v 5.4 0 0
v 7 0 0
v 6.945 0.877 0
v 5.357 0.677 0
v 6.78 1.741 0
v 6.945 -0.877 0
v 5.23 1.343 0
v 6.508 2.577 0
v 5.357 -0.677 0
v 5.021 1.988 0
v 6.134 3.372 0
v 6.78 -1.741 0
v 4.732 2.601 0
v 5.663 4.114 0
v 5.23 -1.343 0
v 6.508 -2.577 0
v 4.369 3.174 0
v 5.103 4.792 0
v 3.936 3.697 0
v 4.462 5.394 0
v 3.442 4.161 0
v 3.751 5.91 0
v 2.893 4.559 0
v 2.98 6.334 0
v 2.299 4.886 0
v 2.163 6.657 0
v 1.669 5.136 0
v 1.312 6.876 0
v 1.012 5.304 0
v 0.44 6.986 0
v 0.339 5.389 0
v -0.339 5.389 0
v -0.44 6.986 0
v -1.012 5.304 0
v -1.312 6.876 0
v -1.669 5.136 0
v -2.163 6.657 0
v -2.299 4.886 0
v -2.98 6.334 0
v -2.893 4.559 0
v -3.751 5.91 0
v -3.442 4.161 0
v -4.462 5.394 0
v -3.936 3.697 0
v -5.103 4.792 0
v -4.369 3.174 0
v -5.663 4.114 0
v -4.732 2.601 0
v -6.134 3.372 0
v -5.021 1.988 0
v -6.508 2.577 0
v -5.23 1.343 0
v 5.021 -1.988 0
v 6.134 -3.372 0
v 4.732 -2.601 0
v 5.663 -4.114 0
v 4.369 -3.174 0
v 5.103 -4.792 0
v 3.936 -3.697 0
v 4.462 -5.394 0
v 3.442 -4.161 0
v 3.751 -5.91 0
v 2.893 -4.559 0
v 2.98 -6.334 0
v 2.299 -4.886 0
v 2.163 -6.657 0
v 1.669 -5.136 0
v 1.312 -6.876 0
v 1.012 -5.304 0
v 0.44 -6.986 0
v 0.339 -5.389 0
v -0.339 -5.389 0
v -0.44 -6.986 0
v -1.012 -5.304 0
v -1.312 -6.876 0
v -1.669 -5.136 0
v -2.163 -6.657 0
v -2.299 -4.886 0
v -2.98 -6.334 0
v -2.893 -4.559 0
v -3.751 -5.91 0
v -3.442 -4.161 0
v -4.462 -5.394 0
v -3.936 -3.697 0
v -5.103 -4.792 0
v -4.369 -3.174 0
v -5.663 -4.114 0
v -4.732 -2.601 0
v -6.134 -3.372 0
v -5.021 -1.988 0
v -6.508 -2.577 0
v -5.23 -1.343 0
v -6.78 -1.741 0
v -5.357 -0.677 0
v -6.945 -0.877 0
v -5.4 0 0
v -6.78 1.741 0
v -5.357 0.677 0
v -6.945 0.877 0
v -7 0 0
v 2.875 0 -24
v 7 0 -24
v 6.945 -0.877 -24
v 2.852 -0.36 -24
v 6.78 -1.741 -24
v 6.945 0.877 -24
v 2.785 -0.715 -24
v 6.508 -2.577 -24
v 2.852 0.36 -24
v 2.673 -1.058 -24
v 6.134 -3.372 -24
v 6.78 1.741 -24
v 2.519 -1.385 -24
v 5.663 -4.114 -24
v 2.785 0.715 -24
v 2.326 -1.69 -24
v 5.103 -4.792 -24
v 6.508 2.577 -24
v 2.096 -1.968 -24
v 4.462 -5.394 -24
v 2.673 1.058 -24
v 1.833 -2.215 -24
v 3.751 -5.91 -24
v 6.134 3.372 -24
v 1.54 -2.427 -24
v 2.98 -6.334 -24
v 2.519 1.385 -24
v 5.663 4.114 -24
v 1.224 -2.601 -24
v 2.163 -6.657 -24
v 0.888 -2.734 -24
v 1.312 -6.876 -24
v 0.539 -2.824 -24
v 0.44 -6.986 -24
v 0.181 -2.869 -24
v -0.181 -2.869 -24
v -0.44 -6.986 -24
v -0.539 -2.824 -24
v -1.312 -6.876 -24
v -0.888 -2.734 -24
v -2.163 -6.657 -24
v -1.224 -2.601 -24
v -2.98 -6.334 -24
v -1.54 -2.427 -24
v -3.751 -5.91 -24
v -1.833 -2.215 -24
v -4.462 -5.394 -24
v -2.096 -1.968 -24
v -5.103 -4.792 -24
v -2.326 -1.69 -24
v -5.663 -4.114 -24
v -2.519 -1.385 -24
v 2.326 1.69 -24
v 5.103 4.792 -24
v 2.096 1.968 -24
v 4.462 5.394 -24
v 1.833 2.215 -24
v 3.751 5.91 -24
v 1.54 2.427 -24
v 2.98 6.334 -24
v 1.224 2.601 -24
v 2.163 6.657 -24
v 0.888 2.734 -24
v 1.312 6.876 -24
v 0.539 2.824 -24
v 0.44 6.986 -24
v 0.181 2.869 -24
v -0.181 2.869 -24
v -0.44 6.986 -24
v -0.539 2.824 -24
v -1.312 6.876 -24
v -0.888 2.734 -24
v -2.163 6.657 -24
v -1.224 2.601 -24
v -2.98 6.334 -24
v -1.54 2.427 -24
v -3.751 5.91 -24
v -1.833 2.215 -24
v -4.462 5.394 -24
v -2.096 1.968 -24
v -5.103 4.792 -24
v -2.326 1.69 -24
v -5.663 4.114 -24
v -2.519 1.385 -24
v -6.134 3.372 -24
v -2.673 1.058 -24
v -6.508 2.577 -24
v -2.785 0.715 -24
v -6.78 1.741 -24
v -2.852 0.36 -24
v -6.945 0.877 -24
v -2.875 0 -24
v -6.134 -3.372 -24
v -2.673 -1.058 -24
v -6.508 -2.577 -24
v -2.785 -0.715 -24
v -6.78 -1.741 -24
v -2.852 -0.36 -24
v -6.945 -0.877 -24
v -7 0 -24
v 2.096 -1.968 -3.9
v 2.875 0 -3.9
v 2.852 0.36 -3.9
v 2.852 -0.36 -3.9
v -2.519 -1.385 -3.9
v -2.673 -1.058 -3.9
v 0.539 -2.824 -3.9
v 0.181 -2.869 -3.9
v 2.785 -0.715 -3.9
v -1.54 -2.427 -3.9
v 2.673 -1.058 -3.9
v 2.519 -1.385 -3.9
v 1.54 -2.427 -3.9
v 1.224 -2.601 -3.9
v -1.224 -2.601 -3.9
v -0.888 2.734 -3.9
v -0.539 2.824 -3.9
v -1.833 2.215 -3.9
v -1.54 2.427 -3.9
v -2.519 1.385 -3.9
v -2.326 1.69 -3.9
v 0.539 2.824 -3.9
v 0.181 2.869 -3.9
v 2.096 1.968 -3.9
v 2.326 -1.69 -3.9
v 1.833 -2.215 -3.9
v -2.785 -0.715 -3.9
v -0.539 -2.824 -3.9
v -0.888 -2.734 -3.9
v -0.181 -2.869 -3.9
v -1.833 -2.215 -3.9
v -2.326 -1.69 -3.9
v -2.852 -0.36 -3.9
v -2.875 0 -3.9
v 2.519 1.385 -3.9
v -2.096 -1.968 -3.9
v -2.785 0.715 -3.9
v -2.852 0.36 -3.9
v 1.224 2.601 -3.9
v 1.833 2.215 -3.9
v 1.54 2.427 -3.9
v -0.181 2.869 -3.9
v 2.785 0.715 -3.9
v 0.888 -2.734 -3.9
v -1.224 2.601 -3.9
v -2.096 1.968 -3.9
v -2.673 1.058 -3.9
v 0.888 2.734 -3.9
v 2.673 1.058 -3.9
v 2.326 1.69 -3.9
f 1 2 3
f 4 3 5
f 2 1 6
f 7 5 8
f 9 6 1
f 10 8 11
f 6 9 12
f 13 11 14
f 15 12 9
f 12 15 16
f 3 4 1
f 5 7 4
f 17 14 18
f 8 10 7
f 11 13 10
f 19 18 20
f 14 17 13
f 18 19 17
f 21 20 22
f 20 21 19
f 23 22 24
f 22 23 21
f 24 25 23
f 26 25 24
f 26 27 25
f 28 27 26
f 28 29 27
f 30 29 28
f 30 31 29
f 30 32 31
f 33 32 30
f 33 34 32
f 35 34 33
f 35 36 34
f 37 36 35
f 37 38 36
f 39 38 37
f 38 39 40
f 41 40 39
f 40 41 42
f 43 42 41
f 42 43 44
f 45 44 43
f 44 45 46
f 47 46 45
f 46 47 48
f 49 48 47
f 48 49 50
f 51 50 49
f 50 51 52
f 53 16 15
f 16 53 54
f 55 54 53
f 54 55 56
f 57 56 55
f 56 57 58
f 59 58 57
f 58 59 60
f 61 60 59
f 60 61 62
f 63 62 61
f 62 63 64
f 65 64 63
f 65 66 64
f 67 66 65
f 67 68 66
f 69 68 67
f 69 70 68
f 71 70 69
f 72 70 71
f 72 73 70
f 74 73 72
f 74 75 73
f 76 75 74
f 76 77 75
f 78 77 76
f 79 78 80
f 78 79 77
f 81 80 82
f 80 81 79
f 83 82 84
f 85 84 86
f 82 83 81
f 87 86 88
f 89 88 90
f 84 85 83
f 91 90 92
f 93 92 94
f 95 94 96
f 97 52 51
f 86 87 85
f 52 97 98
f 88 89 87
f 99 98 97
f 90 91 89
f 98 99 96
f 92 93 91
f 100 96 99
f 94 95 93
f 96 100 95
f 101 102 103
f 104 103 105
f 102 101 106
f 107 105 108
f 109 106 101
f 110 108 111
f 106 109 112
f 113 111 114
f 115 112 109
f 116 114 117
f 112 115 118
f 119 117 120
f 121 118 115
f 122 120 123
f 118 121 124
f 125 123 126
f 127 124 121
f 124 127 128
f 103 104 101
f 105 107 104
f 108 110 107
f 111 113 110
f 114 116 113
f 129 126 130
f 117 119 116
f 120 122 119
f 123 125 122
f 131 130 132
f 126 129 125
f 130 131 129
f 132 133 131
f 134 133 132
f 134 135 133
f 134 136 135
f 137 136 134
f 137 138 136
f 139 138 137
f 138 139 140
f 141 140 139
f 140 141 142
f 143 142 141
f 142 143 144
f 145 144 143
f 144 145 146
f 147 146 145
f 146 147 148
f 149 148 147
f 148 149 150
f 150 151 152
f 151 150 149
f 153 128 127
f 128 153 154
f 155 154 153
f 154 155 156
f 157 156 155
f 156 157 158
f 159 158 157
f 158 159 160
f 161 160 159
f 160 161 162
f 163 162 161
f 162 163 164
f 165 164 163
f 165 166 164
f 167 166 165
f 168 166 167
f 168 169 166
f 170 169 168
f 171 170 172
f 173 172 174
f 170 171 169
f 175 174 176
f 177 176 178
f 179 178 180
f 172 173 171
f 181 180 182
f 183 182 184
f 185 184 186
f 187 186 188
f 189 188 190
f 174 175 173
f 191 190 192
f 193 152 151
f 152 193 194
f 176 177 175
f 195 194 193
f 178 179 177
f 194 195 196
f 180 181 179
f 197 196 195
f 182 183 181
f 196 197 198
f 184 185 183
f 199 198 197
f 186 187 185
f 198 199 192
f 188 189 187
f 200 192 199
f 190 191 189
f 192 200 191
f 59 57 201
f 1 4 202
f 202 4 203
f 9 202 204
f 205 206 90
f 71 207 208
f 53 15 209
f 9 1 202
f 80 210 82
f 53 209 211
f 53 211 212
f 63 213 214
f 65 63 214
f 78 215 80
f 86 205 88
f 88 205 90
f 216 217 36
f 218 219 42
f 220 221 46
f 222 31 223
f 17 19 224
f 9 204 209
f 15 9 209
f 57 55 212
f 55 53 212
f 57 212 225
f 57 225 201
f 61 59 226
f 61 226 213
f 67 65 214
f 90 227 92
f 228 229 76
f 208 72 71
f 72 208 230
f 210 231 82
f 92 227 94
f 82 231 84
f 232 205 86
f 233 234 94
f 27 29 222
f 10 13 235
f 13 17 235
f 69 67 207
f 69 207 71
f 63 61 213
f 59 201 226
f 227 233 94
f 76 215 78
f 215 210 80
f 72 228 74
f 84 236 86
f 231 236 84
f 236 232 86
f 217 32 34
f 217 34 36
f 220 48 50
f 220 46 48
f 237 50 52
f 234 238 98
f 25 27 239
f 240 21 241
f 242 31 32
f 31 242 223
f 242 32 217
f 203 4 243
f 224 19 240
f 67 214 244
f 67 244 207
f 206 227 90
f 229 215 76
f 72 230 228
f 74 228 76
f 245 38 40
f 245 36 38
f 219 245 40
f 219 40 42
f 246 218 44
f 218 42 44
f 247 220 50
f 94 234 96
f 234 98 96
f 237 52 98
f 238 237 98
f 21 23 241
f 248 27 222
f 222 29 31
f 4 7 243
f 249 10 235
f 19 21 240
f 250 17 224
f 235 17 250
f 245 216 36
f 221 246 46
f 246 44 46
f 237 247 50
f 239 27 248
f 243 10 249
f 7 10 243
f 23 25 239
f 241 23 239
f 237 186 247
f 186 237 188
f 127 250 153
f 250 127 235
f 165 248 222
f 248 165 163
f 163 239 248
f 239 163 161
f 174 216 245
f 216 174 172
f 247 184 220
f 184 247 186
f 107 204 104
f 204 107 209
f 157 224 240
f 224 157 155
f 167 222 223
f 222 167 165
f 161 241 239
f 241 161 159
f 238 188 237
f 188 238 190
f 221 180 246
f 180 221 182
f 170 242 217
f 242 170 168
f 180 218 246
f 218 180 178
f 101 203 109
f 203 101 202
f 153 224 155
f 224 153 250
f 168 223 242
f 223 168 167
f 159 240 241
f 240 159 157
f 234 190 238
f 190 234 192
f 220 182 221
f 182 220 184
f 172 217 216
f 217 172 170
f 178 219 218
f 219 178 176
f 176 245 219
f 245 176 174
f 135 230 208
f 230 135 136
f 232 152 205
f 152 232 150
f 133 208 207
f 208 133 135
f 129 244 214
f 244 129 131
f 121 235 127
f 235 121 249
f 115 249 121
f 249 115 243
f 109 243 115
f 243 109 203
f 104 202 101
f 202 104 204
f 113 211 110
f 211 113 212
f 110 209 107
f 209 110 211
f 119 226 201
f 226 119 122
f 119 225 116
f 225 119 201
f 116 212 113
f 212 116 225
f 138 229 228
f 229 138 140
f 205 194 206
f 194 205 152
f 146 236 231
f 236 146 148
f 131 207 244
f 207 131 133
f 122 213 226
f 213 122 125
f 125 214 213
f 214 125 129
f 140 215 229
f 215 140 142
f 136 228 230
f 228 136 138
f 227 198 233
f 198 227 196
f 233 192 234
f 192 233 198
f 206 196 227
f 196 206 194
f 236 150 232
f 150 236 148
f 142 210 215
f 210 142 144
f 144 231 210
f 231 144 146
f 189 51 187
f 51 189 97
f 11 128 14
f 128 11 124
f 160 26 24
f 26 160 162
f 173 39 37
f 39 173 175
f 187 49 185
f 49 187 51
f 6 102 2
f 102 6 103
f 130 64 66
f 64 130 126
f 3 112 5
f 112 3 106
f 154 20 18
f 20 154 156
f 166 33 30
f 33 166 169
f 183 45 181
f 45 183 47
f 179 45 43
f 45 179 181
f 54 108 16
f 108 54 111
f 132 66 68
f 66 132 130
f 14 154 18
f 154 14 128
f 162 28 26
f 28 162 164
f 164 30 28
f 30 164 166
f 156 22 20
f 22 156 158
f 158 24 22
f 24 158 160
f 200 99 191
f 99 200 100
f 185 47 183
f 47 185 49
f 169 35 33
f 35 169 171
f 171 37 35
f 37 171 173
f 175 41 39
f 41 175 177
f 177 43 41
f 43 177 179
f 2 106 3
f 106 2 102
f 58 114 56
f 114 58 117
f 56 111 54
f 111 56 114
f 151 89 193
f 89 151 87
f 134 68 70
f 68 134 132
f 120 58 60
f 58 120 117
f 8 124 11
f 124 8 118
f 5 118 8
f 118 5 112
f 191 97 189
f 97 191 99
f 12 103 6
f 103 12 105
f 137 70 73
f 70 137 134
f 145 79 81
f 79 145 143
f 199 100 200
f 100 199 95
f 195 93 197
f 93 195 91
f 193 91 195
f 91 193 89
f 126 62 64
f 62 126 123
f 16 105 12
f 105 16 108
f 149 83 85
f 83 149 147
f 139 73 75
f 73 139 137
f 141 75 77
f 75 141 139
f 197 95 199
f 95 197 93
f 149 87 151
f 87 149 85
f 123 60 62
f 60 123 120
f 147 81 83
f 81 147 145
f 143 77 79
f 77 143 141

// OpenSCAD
$fn = 50;


difference() {
	union() {
		translate(v = [0, 0, -24.0000000000]) {
			cylinder(h = 24, r = 7.0000000000);
		}
	}
	union() {
		translate(v = [0, 0, 0]) {
			rotate(a = [0, 0, 0]) {
				difference() {
					union() {
						#translate(v = [0, 0, -24.0000000000]) {
							cylinder(h = 24, r = 2.6000000000);
						}
						#translate(v = [0, 0, -3.9000000000]) {
							cylinder(h = 3.9000000000, r = 7.0000000000, r1 = 2.8750000000, r2 = 5.4000000000);
						}
						#translate(v = [0, 0, -24.0000000000]) {
							cylinder(h = 24, r = 2.8750000000);
						}
						#translate(v = [0, 0, -24.0000000000]) {
							cylinder(h = 24, r = 2.6000000000);
						}
					}
					union();
				}
			}
		}
	}
}
